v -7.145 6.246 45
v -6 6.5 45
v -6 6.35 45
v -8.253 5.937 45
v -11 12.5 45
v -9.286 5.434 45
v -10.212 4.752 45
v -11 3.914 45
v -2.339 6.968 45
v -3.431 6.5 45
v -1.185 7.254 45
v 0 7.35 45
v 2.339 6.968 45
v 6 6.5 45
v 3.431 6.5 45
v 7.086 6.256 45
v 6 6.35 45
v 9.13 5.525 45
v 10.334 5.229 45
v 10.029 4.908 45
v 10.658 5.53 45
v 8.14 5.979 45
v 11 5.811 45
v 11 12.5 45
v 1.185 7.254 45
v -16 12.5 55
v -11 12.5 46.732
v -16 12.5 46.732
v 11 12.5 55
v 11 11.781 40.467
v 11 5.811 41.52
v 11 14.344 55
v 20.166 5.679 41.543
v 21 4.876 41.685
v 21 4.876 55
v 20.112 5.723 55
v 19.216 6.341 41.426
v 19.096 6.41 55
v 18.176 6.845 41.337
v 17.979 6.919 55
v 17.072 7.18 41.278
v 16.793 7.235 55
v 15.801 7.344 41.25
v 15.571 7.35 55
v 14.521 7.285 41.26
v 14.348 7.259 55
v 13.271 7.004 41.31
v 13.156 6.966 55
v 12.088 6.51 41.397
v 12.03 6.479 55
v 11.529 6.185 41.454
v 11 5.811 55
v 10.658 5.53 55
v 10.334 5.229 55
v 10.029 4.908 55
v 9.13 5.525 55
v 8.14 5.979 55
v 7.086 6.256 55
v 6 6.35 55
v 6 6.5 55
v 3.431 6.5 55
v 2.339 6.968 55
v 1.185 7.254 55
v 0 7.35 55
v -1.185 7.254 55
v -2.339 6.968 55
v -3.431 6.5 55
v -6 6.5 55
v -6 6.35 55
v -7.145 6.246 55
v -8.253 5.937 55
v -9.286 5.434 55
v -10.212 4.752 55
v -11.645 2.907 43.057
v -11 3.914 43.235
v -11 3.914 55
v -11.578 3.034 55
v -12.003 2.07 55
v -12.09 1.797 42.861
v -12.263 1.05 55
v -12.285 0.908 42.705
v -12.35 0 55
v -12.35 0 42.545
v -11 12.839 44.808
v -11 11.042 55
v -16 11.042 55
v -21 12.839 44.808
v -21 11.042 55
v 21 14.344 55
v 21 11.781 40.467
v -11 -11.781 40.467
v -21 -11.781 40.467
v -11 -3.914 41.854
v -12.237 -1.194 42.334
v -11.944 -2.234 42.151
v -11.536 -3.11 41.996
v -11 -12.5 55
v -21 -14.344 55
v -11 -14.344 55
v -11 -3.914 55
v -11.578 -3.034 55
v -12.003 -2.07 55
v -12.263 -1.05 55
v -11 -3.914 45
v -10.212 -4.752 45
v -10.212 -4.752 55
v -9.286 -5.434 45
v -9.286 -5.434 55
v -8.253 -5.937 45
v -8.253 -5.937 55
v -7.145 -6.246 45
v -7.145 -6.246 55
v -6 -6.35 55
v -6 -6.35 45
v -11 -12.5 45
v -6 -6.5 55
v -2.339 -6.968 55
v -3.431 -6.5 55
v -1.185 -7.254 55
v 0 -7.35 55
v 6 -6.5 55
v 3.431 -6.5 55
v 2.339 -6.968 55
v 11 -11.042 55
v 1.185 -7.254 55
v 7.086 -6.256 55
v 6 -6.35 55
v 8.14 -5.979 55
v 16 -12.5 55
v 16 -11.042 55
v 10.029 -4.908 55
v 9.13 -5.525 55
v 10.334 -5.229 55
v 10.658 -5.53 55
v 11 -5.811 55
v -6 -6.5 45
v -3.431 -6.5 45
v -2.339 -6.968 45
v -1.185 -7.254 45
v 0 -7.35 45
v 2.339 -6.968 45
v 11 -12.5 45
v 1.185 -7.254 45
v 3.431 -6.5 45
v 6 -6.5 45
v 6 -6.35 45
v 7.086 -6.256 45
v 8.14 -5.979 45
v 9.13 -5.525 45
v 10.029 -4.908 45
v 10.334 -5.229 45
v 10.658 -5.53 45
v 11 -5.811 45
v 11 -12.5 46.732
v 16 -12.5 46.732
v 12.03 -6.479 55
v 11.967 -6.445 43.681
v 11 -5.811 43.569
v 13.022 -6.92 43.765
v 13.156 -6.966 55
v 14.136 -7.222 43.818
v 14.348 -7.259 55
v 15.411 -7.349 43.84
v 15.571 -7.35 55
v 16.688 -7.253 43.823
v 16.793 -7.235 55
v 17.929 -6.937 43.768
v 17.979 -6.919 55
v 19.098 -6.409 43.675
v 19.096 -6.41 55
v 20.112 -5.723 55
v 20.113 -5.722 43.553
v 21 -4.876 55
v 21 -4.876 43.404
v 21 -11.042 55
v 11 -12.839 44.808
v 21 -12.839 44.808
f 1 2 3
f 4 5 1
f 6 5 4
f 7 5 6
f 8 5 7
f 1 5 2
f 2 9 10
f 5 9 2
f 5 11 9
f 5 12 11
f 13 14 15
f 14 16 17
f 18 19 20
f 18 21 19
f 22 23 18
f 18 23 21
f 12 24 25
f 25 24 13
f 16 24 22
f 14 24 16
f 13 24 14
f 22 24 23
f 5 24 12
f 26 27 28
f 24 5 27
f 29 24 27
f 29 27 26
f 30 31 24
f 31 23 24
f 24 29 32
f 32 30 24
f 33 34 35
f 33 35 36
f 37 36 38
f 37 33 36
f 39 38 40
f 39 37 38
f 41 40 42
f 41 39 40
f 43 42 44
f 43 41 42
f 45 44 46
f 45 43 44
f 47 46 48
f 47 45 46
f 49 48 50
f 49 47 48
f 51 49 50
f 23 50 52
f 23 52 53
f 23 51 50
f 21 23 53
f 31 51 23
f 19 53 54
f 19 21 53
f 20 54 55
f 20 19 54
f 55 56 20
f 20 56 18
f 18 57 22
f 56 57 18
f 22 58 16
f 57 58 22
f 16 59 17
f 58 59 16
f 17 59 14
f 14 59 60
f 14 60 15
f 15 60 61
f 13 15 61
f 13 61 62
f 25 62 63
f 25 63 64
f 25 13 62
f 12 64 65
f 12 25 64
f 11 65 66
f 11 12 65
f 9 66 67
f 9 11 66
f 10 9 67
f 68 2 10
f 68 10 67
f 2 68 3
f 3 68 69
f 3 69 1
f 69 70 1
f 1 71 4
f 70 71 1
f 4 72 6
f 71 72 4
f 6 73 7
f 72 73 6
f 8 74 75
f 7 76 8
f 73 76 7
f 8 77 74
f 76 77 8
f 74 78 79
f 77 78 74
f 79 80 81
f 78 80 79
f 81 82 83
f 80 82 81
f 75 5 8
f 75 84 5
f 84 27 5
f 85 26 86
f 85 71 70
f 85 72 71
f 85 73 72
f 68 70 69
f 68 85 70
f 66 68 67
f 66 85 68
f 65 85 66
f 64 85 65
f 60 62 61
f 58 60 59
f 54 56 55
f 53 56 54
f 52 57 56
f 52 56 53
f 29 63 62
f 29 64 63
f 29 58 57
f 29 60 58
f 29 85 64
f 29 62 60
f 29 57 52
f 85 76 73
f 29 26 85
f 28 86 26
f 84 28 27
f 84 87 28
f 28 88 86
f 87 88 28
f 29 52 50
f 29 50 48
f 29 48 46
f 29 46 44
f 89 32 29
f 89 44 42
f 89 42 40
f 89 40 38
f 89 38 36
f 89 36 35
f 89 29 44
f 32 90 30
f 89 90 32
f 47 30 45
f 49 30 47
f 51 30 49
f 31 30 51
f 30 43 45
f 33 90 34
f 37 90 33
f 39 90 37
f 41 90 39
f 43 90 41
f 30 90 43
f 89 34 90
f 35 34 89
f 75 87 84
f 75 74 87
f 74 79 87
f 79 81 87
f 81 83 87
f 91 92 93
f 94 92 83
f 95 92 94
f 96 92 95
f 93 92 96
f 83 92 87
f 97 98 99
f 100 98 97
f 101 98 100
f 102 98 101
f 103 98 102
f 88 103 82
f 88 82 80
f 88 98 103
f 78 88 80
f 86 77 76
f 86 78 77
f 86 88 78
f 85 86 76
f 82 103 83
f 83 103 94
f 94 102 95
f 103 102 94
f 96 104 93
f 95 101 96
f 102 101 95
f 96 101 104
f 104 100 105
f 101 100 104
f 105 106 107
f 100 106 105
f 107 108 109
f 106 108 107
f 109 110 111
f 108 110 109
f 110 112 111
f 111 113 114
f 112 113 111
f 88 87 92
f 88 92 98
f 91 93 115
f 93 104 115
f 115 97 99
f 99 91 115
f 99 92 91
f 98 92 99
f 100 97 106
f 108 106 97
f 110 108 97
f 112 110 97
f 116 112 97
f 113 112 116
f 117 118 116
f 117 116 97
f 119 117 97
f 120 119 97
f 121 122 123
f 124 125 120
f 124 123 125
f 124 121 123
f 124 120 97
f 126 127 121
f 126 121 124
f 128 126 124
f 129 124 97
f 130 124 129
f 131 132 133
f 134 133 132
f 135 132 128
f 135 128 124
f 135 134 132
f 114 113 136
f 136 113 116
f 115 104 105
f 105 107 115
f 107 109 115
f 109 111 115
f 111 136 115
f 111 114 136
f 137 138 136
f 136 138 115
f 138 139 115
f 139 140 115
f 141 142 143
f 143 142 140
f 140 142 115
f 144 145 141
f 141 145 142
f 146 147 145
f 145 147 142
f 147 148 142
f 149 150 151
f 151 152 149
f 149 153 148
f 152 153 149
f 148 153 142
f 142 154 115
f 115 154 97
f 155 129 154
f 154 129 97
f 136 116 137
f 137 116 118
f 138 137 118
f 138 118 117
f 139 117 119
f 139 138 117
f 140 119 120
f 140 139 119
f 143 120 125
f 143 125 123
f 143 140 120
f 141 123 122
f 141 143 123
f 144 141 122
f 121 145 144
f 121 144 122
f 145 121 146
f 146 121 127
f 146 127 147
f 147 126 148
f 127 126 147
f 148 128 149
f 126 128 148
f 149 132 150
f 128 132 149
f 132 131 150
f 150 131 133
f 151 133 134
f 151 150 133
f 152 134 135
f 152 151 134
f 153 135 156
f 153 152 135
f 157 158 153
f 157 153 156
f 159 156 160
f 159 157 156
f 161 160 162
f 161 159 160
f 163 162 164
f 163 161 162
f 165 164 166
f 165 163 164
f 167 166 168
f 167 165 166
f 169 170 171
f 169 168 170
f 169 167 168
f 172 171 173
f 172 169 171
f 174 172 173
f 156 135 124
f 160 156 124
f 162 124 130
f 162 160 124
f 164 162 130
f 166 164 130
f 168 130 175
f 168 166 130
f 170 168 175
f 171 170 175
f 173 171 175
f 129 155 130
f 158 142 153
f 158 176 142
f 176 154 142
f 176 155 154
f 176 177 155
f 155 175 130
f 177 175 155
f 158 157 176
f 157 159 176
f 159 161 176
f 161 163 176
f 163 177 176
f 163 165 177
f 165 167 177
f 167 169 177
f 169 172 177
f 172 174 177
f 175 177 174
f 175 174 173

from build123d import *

# Parameters (mm, degrees)
BOX068_W                  = 6
BOX068_H                  = 13
BOX068_DEPTH              = 55
CYLINDER051_R             = 6.35
CYLINDER051_DEPTH         = 55
BOX069_W                  = 6
BOX069_H                  = 13
BOX069_DEPTH              = 55
CYLINDER052_R             = 6.35
CYLINDER052_DEPTH         = 55
FUSION100_PLACEMENT_ANGLE = 180
CYLINDER050_R             = 7.35
CYLINDER050_DEPTH         = 55
CYLINDER_R                = 7.35
CYLINDER_DEPTH            = 60
BOX067_W                  = 62
BOX067_H                  = 55
BOX067_DEPTH              = 10
BOX066_W                  = 10
BOX066_H                  = 25
BOX066_DEPTH              = 20
BOX066_PLACEMENT_ANGLE    = 10
CYLINDER049_R             = 6.35
CYLINDER049_DEPTH         = 55
FUSION097_PLACEMENT_ANGLE = 180
BOX_W                     = 32
BOX_H                     = 25
BOX_DEPTH                 = 10
BOX065_W                  = 10
BOX065_H                  = 25
BOX065_DEPTH              = 20
BOX065_PLACEMENT_ANGLE    = 10
CYLINDER048_R             = 6.35
CYLINDER048_DEPTH         = 55


with BuildPart() as cube068:
    # Box068 → Box068 (new body)
    with BuildSketch(Plane(origin=(0, -6.5, 0), x_dir=(1, 0, 0), z_dir=(0, 0, 1))):
        with Locations((3, 6.5)):
            Rectangle(BOX068_W, BOX068_H)
    extrude(amount=BOX068_DEPTH)


with BuildPart() as fusion099:
    # Cylinder051 → Cylinder051 (new body)
    with BuildSketch(Plane(origin=(6, 0, 0), x_dir=(1, 0, 0), z_dir=(0, 0, 1))):
        Circle(CYLINDER051_R)
    extrude(amount=CYLINDER051_DEPTH)

    # Fusion099: union Cube068
    add(cube068.part)


with BuildPart() as cube069:
    # Box069 → Box069 (new body)
    with BuildSketch(Plane(origin=(0, -6.5, 0), x_dir=(1, 0, 0), z_dir=(0, 0, 1))):
        with Locations((3, 6.5)):
            Rectangle(BOX069_W, BOX069_H)
    extrude(amount=BOX069_DEPTH)


with BuildPart() as fusion101:
    # Cylinder052 → Cylinder052 (new body)
    with BuildSketch(Plane(origin=(6, 0, 0), x_dir=(1, 0, 0), z_dir=(0, 0, 1))):
        Circle(CYLINDER052_R)
    extrude(amount=CYLINDER052_DEPTH)

    # Fusion100: union Cube069
    add(cube069.part)


with BuildPart() as fusion101_1:
    # Fusion100 placement: moved
    add(fusion101.part.rotate(Axis((0, 0, 0), (0, 0, 1)), FUSION100_PLACEMENT_ANGLE))

    # Fusion101: union Fusion099
    add(fusion099.part)


with BuildPart() as bevilpin037:
    # Cylinder050 → Cylinder050 (new body)
    with BuildSketch(Plane.XY):
        Circle(CYLINDER050_R)
    extrude(amount=CYLINDER050_DEPTH)


with BuildPart() as cylinder:
    # Cylinder → Cylinder (new body)
    with BuildSketch(Plane(origin=(15.5, 0, 0), x_dir=(1, 0, 0), z_dir=(0, 0, 1))):
        Circle(CYLINDER_R)
    extrude(amount=CYLINDER_DEPTH)


with BuildPart() as cube067:
    # Box067 → Box067 (new body)
    with BuildSketch(Plane(origin=(-27, -21.5, 55), x_dir=(1, 0, 0), z_dir=(0, 0, 1))):
        with Locations((31, 27.5)):
            Rectangle(BOX067_W, BOX067_H)
    extrude(amount=BOX067_DEPTH)


with BuildPart() as cube066:
    # Box066 → Box066 (new body)
    with BuildSketch(Plane.XY):
        with Locations((5, 12.5)):
            Rectangle(BOX066_W, BOX066_H)
    extrude(amount=BOX066_DEPTH)


with BuildPart() as cube066_1:
    # Box066 placement: moved
    add(cube066.part.moved(Location((11, -12.839144, 44.808394))).rotate(Axis((11, -12.839144, 44.808394), (-1, 0, 0)), BOX066_PLACEMENT_ANGLE))


with BuildPart() as fusion097:
    # Cylinder049 → Cylinder049 (new body)
    with BuildSketch(Plane.XY):
        Circle(CYLINDER049_R)
    extrude(amount=CYLINDER049_DEPTH)

    # Fusion097: union Cube066
    add(cube066_1.part)


with BuildPart() as fusion097_1:
    # Fusion097 placement: moved
    add(fusion097.part.rotate(Axis((0, 0, 0), (0, 0, 1)), FUSION097_PLACEMENT_ANGLE))


with BuildPart() as fusion:
    # Box → Box (new body)
    with BuildSketch(Plane(origin=(-16, -12.5, 45), x_dir=(1, 0, 0), z_dir=(0, 0, 1))):
        with Locations((16, 12.5)):
            Rectangle(BOX_W, BOX_H)
    extrude(amount=BOX_DEPTH)

    # Fusion: union Fusion097
    add(fusion097_1.part)


with BuildPart() as cube065:
    # Box065 → Box065 (new body)
    with BuildSketch(Plane.XY):
        with Locations((5, 12.5)):
            Rectangle(BOX065_W, BOX065_H)
    extrude(amount=BOX065_DEPTH)


with BuildPart() as cube065_1:
    # Box065 placement: moved
    add(cube065.part.moved(Location((11, -12.839144, 44.808394))).rotate(Axis((11, -12.839144, 44.808394), (-1, 0, 0)), BOX065_PLACEMENT_ANGLE))


with BuildPart() as cut003:
    # Cylinder048 → Cylinder048 (new body)
    with BuildSketch(Plane.XY):
        Circle(CYLINDER048_R)
    extrude(amount=CYLINDER048_DEPTH)

    # Fusion096: union Cube065
    add(cube065_1.part)

    # Fusion098: union Fusion
    add(fusion.part)

    # Cut: cut Cube067
    add(cube067.part, mode=Mode.SUBTRACT)

    # Cut001: cut Cylinder
    add(cylinder.part, mode=Mode.SUBTRACT)

    # Cut002: cut bevilPin037
    add(bevilpin037.part, mode=Mode.SUBTRACT)

    # Cut003: cut Fusion101
    add(fusion101_1.part, mode=Mode.SUBTRACT)


solid = cut003.part
